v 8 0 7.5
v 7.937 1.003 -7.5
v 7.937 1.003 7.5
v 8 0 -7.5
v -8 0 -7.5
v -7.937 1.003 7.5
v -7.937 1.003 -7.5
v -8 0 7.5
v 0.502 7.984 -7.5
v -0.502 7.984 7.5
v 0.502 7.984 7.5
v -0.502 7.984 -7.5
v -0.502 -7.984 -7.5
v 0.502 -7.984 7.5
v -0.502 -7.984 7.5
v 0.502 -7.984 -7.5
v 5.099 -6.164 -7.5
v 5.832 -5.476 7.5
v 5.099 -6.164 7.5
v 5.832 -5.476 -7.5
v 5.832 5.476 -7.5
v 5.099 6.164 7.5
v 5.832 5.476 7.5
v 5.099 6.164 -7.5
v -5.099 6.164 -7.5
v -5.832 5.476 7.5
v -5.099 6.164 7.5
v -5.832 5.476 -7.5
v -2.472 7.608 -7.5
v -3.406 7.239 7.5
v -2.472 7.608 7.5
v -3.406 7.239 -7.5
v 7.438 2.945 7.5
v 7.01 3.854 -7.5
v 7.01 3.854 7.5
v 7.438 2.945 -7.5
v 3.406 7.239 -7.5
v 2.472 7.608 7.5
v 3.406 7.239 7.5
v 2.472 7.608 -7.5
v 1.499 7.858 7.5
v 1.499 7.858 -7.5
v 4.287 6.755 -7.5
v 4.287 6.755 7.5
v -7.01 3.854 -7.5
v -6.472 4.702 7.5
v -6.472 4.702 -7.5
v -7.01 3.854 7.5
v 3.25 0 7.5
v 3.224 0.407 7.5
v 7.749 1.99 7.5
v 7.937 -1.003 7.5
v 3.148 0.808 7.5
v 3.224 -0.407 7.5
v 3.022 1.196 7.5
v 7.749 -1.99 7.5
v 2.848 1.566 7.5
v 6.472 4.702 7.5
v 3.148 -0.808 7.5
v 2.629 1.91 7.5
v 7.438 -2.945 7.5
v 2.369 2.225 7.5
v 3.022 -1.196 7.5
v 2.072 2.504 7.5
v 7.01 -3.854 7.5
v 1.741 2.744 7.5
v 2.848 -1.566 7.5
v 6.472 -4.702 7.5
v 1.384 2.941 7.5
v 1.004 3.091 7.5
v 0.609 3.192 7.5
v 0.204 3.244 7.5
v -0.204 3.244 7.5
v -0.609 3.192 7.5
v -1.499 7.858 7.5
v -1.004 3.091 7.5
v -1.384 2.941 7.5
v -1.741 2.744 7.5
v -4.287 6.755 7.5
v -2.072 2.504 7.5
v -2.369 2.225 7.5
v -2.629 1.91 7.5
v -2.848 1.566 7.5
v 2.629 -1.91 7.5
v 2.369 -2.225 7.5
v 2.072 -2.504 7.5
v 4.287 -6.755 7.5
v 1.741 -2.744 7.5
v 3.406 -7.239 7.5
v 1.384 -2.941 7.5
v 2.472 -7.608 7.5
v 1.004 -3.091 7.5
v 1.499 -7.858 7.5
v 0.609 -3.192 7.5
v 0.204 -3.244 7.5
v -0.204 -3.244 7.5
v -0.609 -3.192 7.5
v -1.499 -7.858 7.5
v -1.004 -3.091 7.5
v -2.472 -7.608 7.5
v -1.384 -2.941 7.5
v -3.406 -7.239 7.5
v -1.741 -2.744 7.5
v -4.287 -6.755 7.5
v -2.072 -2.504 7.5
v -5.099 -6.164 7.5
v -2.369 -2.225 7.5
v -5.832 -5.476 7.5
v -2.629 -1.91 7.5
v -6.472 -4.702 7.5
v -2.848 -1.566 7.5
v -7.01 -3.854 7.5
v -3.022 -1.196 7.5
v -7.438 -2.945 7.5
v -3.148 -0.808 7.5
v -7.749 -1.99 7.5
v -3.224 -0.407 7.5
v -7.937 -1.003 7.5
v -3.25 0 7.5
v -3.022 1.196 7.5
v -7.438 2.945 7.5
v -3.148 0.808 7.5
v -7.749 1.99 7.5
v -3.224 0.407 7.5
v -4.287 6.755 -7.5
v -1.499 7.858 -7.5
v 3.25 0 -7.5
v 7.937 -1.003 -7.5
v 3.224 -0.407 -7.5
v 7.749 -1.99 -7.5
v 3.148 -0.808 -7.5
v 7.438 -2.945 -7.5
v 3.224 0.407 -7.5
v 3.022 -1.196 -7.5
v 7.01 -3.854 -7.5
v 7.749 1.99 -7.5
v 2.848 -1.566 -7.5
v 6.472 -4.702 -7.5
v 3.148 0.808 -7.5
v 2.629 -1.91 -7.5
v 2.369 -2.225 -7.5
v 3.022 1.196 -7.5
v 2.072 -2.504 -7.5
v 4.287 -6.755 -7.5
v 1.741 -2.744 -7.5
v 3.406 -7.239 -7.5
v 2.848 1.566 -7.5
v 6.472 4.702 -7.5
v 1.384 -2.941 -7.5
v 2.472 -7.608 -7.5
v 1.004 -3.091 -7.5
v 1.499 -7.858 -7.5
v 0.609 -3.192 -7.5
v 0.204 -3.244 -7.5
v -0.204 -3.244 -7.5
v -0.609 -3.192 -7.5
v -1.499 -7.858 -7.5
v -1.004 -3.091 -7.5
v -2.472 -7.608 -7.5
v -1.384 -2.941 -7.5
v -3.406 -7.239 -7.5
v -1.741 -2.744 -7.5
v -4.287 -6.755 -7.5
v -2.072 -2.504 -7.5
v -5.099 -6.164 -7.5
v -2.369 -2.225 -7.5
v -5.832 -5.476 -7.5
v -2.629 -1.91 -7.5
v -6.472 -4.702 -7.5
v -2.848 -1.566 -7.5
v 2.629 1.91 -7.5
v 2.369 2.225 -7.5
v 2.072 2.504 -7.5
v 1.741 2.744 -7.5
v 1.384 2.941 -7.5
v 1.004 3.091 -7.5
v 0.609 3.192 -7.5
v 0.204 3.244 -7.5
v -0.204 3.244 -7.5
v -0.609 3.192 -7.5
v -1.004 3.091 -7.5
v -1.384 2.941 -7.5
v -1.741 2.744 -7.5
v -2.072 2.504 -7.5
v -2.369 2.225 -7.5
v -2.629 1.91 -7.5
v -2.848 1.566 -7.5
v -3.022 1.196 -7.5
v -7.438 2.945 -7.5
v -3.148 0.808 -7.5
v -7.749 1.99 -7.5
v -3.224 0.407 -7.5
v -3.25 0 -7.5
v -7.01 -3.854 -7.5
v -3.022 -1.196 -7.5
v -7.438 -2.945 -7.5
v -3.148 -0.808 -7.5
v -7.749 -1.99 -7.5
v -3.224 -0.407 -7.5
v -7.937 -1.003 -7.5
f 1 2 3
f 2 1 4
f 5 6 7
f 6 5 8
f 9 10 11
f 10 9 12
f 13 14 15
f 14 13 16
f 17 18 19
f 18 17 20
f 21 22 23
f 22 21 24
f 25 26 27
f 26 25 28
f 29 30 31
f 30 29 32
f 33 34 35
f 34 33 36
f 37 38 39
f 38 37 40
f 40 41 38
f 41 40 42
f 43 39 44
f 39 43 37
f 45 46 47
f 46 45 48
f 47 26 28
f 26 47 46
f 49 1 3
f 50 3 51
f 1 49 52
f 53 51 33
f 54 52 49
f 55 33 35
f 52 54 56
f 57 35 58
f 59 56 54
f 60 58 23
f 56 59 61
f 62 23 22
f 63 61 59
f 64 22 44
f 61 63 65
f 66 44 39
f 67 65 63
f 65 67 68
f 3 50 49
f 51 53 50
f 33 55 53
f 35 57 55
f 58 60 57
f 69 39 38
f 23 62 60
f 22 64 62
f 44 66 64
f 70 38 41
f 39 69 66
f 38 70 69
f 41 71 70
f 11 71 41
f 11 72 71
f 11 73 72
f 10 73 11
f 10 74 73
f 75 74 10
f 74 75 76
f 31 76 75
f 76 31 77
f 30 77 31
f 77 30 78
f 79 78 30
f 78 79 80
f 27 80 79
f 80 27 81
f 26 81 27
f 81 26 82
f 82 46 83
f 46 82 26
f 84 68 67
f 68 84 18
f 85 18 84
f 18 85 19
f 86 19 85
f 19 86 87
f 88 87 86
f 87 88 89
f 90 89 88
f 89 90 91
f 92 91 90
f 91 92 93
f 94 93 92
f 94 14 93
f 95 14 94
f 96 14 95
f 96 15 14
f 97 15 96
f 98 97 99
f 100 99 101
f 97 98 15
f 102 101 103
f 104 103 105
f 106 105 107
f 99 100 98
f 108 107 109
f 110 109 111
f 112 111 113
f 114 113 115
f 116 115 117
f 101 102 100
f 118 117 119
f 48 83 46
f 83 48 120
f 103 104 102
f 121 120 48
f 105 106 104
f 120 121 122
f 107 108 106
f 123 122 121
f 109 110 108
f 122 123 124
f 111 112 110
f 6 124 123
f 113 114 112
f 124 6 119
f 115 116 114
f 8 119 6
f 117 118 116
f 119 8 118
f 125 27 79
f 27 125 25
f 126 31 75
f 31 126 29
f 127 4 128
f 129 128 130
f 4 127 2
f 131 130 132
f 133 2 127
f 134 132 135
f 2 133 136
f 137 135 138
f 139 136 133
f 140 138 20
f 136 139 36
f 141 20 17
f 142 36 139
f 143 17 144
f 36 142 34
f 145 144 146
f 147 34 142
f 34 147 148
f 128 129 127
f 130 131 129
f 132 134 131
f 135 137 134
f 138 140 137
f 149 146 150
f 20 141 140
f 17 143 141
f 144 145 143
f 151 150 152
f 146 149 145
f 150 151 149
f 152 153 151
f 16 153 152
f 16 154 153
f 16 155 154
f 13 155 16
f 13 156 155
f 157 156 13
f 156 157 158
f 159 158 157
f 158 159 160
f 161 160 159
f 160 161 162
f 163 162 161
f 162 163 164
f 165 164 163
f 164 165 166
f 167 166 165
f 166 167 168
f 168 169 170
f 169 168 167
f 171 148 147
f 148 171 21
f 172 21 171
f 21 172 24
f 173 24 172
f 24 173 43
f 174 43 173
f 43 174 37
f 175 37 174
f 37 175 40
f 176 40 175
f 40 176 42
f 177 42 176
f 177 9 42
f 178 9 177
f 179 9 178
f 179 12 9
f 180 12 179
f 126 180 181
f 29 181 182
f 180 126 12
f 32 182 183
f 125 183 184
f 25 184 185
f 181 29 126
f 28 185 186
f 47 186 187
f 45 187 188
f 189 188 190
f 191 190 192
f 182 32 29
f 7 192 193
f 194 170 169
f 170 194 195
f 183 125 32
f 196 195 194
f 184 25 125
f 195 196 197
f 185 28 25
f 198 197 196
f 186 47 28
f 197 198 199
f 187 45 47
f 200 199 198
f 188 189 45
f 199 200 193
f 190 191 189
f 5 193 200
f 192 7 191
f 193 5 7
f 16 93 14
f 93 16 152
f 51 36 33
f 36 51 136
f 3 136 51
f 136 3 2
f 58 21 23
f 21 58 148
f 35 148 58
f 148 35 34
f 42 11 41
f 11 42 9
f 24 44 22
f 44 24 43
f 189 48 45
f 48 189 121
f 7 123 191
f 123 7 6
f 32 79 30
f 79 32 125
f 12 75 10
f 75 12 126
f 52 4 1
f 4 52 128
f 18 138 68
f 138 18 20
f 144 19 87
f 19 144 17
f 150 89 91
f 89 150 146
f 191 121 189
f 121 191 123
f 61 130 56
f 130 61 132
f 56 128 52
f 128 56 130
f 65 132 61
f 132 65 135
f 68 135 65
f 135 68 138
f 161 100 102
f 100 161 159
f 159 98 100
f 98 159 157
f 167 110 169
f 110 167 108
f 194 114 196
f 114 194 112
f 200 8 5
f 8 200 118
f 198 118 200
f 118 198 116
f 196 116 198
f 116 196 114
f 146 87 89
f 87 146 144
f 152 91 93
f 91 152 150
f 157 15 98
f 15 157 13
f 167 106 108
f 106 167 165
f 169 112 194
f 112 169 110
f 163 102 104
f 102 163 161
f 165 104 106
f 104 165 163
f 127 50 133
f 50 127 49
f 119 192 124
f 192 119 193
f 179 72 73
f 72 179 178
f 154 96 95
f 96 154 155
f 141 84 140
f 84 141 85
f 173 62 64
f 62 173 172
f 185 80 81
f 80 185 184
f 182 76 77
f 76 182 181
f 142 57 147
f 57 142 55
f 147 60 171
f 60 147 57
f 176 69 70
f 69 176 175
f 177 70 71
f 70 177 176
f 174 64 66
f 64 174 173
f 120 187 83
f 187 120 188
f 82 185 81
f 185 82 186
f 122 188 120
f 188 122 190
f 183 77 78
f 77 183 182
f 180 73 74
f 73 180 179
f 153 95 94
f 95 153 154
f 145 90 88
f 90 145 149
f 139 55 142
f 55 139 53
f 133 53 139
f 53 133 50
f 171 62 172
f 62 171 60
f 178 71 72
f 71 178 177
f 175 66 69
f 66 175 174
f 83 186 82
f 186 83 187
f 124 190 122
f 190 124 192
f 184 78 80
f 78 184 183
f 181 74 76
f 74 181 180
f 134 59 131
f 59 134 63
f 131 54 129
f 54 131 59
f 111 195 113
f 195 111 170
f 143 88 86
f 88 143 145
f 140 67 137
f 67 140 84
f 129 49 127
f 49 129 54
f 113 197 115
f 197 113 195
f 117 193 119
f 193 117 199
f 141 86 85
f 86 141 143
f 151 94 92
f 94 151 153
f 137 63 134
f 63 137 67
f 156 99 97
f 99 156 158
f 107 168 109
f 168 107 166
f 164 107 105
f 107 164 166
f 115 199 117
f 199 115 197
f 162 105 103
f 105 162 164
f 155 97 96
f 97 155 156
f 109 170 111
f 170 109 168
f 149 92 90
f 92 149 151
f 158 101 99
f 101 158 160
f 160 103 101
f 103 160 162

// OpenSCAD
$fn = 50;


difference() {
	union() {
		translate(v = [0, 0, -7.5000000000]) {
			cylinder(h = 15, r = 8.0000000000);
		}
	}
	union() {
		translate(v = [0, 0, -100.0000000000]) {
			cylinder(h = 200, r = 3.2500000000);
		}
	}
}
